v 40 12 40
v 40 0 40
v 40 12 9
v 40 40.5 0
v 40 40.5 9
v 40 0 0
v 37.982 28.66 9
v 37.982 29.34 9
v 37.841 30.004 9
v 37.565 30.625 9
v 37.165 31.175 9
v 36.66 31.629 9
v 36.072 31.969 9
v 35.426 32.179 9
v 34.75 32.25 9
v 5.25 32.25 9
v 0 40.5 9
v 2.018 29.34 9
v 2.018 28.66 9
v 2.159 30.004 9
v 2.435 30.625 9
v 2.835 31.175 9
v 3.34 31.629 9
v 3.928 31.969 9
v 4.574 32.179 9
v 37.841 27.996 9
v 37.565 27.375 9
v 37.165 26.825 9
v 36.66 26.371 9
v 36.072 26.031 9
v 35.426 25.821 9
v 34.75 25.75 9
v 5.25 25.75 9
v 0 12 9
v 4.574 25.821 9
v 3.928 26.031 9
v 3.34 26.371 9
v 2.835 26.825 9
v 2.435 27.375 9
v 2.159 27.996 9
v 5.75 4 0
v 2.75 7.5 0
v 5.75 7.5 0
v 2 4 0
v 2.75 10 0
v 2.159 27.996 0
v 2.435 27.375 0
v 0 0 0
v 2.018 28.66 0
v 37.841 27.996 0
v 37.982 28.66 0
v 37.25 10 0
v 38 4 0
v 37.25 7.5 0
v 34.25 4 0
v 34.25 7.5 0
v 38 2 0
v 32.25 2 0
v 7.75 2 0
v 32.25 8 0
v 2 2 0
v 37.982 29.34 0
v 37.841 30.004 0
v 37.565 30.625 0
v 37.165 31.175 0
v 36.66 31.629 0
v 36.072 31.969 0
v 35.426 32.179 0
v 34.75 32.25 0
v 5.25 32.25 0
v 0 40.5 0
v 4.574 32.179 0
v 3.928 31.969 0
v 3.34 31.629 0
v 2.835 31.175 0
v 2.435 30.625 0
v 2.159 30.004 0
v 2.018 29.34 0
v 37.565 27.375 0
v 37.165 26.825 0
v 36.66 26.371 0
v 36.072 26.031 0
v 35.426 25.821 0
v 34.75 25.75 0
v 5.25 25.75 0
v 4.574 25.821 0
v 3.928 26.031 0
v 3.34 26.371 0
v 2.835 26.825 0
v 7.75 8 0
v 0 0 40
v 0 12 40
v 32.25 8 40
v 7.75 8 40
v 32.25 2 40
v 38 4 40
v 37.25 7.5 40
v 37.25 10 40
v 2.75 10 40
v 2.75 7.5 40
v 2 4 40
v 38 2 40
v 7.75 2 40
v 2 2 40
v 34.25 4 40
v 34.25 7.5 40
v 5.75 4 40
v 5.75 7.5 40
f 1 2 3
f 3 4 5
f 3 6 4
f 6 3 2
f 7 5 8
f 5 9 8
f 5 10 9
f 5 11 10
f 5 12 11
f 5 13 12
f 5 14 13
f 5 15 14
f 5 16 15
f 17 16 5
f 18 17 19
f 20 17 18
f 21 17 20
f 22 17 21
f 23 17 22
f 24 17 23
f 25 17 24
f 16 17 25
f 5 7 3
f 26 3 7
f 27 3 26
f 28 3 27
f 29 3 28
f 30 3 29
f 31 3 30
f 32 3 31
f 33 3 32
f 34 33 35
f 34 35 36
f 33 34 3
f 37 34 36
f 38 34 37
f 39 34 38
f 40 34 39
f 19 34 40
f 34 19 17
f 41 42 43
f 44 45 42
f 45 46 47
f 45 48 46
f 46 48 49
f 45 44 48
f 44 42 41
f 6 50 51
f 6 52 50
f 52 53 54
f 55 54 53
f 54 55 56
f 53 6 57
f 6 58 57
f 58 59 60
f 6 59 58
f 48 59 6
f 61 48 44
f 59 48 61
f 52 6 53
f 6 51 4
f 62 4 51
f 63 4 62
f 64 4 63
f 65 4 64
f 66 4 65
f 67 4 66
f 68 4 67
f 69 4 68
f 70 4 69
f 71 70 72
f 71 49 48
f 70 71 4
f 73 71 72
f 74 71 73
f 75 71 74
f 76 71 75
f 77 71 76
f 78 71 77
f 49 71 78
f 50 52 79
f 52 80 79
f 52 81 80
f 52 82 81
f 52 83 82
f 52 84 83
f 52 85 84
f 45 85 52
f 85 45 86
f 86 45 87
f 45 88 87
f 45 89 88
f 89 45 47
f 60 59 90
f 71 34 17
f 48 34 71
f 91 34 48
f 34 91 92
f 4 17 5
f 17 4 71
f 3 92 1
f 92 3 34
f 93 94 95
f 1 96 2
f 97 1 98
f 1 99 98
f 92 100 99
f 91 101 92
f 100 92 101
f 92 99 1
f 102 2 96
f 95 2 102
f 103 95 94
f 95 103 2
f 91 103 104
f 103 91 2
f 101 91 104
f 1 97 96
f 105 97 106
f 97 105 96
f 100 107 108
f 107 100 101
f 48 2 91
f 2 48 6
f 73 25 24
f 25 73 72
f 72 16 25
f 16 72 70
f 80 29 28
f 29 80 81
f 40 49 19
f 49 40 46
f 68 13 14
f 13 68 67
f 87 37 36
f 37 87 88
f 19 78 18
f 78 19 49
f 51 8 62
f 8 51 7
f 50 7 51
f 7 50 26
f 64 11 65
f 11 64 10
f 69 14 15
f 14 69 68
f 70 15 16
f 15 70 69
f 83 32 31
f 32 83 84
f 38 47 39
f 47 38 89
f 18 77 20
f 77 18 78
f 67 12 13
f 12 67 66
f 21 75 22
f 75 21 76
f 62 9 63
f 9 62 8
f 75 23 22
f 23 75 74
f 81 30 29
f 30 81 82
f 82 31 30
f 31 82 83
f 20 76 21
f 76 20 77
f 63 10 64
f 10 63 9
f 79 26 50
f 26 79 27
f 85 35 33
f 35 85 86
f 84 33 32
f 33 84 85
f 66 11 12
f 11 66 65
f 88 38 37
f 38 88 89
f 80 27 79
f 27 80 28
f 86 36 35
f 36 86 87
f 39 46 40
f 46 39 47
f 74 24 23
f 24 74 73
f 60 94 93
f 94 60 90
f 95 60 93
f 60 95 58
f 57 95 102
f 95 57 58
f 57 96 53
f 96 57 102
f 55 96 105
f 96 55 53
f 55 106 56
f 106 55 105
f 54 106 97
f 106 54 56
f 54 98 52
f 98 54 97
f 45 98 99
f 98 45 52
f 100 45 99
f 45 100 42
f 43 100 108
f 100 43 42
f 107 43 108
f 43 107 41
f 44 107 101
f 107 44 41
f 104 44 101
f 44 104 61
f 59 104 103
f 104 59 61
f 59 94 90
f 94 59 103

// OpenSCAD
// file: din_utilities.scad
DIN_LENGTH = 36;
DIN_INNER_LENGTH = 24.5;
DIN_WIDTH = 8;
DIN_NUBBIN_WIDTH = 2.5;
DIN_NUBBIN_LENGTH = 3;
DIN_RAIL_WIDTH = 2;

function din_length() = DIN_LENGTH;
function din_width() = DIN_WIDTH;

module din_modified_slot() {
    din_wing_length = (DIN_LENGTH - DIN_INNER_LENGTH) / 2;
    echo(din_wing_length);
    din_inner_width = DIN_WIDTH - DIN_RAIL_WIDTH;
    polygon([
        [0, 0],
        [0, DIN_RAIL_WIDTH],
        [din_wing_length - DIN_RAIL_WIDTH, DIN_RAIL_WIDTH],
        [din_wing_length - DIN_RAIL_WIDTH, DIN_WIDTH - DIN_NUBBIN_WIDTH],
        [din_wing_length - DIN_RAIL_WIDTH - DIN_NUBBIN_LENGTH, DIN_WIDTH - DIN_NUBBIN_WIDTH],
        [din_wing_length - DIN_RAIL_WIDTH - DIN_NUBBIN_LENGTH, DIN_WIDTH],
        [DIN_LENGTH - din_wing_length + DIN_RAIL_WIDTH + DIN_NUBBIN_LENGTH, DIN_WIDTH],
        [DIN_LENGTH - din_wing_length + DIN_RAIL_WIDTH + DIN_NUBBIN_LENGTH, DIN_WIDTH - DIN_NUBBIN_WIDTH],
        [DIN_LENGTH - din_wing_length + DIN_RAIL_WIDTH, DIN_WIDTH - DIN_NUBBIN_WIDTH],
        [DIN_LENGTH - din_wing_length + DIN_RAIL_WIDTH, DIN_RAIL_WIDTH],
        [DIN_LENGTH, DIN_RAIL_WIDTH],
        [DIN_LENGTH, 0],
        [DIN_LENGTH - din_wing_length, 0],
        [DIN_LENGTH - din_wing_length, din_inner_width],
        [din_wing_length, din_inner_width],
        [din_wing_length, 0]
    ]);
}

difference() {
    cube([40, 12 ,4]);
    
    translate([2, 2, 0])
    linear_extrude(4)
    din_modified_slot();
}
// main file
use <din_utilities.scad>

WALL_WIDTH = 2;

din_block_depth = din_width() + WALL_WIDTH * 2;
block_length = din_length() + WALL_WIDTH * 2;

SLOT_DEPTH = 40;
HOLE_WALL = 5;
HOLE_OFFSET = 17;
HOLE_DIAMETER = 6.5;
HOLE_DEPTH = 9;
hole_width = din_length() - HOLE_DIAMETER;
block_depth = HOLE_DIAMETER + HOLE_OFFSET + HOLE_WALL;

hole_radius = HOLE_DIAMETER / 2;


module slot() {
    linear_extrude(HOLE_DEPTH)
    hull() {
        scale([1/10, 1/10, 1/10])
        circle(d = HOLE_DIAMETER * 10);
        
        translate([0, hole_width, 0])
        scale([1/10, 1/10, 1/10])
        circle(d = HOLE_DIAMETER * 10);
    }
}

module block() {
    union() {
        translate([0, din_block_depth, 0])
        cube([block_length, block_depth, HOLE_DEPTH]);
        
        cube([block_length, din_block_depth, SLOT_DEPTH]);
    }
}

difference() {
    block();
    
    rotate([0, 0, -90])
    translate([-din_block_depth - HOLE_OFFSET, WALL_WIDTH + hole_radius, 0])
    slot();

    translate([WALL_WIDTH, WALL_WIDTH, 0])
    linear_extrude(SLOT_DEPTH)
        din_modified_slot();
}
